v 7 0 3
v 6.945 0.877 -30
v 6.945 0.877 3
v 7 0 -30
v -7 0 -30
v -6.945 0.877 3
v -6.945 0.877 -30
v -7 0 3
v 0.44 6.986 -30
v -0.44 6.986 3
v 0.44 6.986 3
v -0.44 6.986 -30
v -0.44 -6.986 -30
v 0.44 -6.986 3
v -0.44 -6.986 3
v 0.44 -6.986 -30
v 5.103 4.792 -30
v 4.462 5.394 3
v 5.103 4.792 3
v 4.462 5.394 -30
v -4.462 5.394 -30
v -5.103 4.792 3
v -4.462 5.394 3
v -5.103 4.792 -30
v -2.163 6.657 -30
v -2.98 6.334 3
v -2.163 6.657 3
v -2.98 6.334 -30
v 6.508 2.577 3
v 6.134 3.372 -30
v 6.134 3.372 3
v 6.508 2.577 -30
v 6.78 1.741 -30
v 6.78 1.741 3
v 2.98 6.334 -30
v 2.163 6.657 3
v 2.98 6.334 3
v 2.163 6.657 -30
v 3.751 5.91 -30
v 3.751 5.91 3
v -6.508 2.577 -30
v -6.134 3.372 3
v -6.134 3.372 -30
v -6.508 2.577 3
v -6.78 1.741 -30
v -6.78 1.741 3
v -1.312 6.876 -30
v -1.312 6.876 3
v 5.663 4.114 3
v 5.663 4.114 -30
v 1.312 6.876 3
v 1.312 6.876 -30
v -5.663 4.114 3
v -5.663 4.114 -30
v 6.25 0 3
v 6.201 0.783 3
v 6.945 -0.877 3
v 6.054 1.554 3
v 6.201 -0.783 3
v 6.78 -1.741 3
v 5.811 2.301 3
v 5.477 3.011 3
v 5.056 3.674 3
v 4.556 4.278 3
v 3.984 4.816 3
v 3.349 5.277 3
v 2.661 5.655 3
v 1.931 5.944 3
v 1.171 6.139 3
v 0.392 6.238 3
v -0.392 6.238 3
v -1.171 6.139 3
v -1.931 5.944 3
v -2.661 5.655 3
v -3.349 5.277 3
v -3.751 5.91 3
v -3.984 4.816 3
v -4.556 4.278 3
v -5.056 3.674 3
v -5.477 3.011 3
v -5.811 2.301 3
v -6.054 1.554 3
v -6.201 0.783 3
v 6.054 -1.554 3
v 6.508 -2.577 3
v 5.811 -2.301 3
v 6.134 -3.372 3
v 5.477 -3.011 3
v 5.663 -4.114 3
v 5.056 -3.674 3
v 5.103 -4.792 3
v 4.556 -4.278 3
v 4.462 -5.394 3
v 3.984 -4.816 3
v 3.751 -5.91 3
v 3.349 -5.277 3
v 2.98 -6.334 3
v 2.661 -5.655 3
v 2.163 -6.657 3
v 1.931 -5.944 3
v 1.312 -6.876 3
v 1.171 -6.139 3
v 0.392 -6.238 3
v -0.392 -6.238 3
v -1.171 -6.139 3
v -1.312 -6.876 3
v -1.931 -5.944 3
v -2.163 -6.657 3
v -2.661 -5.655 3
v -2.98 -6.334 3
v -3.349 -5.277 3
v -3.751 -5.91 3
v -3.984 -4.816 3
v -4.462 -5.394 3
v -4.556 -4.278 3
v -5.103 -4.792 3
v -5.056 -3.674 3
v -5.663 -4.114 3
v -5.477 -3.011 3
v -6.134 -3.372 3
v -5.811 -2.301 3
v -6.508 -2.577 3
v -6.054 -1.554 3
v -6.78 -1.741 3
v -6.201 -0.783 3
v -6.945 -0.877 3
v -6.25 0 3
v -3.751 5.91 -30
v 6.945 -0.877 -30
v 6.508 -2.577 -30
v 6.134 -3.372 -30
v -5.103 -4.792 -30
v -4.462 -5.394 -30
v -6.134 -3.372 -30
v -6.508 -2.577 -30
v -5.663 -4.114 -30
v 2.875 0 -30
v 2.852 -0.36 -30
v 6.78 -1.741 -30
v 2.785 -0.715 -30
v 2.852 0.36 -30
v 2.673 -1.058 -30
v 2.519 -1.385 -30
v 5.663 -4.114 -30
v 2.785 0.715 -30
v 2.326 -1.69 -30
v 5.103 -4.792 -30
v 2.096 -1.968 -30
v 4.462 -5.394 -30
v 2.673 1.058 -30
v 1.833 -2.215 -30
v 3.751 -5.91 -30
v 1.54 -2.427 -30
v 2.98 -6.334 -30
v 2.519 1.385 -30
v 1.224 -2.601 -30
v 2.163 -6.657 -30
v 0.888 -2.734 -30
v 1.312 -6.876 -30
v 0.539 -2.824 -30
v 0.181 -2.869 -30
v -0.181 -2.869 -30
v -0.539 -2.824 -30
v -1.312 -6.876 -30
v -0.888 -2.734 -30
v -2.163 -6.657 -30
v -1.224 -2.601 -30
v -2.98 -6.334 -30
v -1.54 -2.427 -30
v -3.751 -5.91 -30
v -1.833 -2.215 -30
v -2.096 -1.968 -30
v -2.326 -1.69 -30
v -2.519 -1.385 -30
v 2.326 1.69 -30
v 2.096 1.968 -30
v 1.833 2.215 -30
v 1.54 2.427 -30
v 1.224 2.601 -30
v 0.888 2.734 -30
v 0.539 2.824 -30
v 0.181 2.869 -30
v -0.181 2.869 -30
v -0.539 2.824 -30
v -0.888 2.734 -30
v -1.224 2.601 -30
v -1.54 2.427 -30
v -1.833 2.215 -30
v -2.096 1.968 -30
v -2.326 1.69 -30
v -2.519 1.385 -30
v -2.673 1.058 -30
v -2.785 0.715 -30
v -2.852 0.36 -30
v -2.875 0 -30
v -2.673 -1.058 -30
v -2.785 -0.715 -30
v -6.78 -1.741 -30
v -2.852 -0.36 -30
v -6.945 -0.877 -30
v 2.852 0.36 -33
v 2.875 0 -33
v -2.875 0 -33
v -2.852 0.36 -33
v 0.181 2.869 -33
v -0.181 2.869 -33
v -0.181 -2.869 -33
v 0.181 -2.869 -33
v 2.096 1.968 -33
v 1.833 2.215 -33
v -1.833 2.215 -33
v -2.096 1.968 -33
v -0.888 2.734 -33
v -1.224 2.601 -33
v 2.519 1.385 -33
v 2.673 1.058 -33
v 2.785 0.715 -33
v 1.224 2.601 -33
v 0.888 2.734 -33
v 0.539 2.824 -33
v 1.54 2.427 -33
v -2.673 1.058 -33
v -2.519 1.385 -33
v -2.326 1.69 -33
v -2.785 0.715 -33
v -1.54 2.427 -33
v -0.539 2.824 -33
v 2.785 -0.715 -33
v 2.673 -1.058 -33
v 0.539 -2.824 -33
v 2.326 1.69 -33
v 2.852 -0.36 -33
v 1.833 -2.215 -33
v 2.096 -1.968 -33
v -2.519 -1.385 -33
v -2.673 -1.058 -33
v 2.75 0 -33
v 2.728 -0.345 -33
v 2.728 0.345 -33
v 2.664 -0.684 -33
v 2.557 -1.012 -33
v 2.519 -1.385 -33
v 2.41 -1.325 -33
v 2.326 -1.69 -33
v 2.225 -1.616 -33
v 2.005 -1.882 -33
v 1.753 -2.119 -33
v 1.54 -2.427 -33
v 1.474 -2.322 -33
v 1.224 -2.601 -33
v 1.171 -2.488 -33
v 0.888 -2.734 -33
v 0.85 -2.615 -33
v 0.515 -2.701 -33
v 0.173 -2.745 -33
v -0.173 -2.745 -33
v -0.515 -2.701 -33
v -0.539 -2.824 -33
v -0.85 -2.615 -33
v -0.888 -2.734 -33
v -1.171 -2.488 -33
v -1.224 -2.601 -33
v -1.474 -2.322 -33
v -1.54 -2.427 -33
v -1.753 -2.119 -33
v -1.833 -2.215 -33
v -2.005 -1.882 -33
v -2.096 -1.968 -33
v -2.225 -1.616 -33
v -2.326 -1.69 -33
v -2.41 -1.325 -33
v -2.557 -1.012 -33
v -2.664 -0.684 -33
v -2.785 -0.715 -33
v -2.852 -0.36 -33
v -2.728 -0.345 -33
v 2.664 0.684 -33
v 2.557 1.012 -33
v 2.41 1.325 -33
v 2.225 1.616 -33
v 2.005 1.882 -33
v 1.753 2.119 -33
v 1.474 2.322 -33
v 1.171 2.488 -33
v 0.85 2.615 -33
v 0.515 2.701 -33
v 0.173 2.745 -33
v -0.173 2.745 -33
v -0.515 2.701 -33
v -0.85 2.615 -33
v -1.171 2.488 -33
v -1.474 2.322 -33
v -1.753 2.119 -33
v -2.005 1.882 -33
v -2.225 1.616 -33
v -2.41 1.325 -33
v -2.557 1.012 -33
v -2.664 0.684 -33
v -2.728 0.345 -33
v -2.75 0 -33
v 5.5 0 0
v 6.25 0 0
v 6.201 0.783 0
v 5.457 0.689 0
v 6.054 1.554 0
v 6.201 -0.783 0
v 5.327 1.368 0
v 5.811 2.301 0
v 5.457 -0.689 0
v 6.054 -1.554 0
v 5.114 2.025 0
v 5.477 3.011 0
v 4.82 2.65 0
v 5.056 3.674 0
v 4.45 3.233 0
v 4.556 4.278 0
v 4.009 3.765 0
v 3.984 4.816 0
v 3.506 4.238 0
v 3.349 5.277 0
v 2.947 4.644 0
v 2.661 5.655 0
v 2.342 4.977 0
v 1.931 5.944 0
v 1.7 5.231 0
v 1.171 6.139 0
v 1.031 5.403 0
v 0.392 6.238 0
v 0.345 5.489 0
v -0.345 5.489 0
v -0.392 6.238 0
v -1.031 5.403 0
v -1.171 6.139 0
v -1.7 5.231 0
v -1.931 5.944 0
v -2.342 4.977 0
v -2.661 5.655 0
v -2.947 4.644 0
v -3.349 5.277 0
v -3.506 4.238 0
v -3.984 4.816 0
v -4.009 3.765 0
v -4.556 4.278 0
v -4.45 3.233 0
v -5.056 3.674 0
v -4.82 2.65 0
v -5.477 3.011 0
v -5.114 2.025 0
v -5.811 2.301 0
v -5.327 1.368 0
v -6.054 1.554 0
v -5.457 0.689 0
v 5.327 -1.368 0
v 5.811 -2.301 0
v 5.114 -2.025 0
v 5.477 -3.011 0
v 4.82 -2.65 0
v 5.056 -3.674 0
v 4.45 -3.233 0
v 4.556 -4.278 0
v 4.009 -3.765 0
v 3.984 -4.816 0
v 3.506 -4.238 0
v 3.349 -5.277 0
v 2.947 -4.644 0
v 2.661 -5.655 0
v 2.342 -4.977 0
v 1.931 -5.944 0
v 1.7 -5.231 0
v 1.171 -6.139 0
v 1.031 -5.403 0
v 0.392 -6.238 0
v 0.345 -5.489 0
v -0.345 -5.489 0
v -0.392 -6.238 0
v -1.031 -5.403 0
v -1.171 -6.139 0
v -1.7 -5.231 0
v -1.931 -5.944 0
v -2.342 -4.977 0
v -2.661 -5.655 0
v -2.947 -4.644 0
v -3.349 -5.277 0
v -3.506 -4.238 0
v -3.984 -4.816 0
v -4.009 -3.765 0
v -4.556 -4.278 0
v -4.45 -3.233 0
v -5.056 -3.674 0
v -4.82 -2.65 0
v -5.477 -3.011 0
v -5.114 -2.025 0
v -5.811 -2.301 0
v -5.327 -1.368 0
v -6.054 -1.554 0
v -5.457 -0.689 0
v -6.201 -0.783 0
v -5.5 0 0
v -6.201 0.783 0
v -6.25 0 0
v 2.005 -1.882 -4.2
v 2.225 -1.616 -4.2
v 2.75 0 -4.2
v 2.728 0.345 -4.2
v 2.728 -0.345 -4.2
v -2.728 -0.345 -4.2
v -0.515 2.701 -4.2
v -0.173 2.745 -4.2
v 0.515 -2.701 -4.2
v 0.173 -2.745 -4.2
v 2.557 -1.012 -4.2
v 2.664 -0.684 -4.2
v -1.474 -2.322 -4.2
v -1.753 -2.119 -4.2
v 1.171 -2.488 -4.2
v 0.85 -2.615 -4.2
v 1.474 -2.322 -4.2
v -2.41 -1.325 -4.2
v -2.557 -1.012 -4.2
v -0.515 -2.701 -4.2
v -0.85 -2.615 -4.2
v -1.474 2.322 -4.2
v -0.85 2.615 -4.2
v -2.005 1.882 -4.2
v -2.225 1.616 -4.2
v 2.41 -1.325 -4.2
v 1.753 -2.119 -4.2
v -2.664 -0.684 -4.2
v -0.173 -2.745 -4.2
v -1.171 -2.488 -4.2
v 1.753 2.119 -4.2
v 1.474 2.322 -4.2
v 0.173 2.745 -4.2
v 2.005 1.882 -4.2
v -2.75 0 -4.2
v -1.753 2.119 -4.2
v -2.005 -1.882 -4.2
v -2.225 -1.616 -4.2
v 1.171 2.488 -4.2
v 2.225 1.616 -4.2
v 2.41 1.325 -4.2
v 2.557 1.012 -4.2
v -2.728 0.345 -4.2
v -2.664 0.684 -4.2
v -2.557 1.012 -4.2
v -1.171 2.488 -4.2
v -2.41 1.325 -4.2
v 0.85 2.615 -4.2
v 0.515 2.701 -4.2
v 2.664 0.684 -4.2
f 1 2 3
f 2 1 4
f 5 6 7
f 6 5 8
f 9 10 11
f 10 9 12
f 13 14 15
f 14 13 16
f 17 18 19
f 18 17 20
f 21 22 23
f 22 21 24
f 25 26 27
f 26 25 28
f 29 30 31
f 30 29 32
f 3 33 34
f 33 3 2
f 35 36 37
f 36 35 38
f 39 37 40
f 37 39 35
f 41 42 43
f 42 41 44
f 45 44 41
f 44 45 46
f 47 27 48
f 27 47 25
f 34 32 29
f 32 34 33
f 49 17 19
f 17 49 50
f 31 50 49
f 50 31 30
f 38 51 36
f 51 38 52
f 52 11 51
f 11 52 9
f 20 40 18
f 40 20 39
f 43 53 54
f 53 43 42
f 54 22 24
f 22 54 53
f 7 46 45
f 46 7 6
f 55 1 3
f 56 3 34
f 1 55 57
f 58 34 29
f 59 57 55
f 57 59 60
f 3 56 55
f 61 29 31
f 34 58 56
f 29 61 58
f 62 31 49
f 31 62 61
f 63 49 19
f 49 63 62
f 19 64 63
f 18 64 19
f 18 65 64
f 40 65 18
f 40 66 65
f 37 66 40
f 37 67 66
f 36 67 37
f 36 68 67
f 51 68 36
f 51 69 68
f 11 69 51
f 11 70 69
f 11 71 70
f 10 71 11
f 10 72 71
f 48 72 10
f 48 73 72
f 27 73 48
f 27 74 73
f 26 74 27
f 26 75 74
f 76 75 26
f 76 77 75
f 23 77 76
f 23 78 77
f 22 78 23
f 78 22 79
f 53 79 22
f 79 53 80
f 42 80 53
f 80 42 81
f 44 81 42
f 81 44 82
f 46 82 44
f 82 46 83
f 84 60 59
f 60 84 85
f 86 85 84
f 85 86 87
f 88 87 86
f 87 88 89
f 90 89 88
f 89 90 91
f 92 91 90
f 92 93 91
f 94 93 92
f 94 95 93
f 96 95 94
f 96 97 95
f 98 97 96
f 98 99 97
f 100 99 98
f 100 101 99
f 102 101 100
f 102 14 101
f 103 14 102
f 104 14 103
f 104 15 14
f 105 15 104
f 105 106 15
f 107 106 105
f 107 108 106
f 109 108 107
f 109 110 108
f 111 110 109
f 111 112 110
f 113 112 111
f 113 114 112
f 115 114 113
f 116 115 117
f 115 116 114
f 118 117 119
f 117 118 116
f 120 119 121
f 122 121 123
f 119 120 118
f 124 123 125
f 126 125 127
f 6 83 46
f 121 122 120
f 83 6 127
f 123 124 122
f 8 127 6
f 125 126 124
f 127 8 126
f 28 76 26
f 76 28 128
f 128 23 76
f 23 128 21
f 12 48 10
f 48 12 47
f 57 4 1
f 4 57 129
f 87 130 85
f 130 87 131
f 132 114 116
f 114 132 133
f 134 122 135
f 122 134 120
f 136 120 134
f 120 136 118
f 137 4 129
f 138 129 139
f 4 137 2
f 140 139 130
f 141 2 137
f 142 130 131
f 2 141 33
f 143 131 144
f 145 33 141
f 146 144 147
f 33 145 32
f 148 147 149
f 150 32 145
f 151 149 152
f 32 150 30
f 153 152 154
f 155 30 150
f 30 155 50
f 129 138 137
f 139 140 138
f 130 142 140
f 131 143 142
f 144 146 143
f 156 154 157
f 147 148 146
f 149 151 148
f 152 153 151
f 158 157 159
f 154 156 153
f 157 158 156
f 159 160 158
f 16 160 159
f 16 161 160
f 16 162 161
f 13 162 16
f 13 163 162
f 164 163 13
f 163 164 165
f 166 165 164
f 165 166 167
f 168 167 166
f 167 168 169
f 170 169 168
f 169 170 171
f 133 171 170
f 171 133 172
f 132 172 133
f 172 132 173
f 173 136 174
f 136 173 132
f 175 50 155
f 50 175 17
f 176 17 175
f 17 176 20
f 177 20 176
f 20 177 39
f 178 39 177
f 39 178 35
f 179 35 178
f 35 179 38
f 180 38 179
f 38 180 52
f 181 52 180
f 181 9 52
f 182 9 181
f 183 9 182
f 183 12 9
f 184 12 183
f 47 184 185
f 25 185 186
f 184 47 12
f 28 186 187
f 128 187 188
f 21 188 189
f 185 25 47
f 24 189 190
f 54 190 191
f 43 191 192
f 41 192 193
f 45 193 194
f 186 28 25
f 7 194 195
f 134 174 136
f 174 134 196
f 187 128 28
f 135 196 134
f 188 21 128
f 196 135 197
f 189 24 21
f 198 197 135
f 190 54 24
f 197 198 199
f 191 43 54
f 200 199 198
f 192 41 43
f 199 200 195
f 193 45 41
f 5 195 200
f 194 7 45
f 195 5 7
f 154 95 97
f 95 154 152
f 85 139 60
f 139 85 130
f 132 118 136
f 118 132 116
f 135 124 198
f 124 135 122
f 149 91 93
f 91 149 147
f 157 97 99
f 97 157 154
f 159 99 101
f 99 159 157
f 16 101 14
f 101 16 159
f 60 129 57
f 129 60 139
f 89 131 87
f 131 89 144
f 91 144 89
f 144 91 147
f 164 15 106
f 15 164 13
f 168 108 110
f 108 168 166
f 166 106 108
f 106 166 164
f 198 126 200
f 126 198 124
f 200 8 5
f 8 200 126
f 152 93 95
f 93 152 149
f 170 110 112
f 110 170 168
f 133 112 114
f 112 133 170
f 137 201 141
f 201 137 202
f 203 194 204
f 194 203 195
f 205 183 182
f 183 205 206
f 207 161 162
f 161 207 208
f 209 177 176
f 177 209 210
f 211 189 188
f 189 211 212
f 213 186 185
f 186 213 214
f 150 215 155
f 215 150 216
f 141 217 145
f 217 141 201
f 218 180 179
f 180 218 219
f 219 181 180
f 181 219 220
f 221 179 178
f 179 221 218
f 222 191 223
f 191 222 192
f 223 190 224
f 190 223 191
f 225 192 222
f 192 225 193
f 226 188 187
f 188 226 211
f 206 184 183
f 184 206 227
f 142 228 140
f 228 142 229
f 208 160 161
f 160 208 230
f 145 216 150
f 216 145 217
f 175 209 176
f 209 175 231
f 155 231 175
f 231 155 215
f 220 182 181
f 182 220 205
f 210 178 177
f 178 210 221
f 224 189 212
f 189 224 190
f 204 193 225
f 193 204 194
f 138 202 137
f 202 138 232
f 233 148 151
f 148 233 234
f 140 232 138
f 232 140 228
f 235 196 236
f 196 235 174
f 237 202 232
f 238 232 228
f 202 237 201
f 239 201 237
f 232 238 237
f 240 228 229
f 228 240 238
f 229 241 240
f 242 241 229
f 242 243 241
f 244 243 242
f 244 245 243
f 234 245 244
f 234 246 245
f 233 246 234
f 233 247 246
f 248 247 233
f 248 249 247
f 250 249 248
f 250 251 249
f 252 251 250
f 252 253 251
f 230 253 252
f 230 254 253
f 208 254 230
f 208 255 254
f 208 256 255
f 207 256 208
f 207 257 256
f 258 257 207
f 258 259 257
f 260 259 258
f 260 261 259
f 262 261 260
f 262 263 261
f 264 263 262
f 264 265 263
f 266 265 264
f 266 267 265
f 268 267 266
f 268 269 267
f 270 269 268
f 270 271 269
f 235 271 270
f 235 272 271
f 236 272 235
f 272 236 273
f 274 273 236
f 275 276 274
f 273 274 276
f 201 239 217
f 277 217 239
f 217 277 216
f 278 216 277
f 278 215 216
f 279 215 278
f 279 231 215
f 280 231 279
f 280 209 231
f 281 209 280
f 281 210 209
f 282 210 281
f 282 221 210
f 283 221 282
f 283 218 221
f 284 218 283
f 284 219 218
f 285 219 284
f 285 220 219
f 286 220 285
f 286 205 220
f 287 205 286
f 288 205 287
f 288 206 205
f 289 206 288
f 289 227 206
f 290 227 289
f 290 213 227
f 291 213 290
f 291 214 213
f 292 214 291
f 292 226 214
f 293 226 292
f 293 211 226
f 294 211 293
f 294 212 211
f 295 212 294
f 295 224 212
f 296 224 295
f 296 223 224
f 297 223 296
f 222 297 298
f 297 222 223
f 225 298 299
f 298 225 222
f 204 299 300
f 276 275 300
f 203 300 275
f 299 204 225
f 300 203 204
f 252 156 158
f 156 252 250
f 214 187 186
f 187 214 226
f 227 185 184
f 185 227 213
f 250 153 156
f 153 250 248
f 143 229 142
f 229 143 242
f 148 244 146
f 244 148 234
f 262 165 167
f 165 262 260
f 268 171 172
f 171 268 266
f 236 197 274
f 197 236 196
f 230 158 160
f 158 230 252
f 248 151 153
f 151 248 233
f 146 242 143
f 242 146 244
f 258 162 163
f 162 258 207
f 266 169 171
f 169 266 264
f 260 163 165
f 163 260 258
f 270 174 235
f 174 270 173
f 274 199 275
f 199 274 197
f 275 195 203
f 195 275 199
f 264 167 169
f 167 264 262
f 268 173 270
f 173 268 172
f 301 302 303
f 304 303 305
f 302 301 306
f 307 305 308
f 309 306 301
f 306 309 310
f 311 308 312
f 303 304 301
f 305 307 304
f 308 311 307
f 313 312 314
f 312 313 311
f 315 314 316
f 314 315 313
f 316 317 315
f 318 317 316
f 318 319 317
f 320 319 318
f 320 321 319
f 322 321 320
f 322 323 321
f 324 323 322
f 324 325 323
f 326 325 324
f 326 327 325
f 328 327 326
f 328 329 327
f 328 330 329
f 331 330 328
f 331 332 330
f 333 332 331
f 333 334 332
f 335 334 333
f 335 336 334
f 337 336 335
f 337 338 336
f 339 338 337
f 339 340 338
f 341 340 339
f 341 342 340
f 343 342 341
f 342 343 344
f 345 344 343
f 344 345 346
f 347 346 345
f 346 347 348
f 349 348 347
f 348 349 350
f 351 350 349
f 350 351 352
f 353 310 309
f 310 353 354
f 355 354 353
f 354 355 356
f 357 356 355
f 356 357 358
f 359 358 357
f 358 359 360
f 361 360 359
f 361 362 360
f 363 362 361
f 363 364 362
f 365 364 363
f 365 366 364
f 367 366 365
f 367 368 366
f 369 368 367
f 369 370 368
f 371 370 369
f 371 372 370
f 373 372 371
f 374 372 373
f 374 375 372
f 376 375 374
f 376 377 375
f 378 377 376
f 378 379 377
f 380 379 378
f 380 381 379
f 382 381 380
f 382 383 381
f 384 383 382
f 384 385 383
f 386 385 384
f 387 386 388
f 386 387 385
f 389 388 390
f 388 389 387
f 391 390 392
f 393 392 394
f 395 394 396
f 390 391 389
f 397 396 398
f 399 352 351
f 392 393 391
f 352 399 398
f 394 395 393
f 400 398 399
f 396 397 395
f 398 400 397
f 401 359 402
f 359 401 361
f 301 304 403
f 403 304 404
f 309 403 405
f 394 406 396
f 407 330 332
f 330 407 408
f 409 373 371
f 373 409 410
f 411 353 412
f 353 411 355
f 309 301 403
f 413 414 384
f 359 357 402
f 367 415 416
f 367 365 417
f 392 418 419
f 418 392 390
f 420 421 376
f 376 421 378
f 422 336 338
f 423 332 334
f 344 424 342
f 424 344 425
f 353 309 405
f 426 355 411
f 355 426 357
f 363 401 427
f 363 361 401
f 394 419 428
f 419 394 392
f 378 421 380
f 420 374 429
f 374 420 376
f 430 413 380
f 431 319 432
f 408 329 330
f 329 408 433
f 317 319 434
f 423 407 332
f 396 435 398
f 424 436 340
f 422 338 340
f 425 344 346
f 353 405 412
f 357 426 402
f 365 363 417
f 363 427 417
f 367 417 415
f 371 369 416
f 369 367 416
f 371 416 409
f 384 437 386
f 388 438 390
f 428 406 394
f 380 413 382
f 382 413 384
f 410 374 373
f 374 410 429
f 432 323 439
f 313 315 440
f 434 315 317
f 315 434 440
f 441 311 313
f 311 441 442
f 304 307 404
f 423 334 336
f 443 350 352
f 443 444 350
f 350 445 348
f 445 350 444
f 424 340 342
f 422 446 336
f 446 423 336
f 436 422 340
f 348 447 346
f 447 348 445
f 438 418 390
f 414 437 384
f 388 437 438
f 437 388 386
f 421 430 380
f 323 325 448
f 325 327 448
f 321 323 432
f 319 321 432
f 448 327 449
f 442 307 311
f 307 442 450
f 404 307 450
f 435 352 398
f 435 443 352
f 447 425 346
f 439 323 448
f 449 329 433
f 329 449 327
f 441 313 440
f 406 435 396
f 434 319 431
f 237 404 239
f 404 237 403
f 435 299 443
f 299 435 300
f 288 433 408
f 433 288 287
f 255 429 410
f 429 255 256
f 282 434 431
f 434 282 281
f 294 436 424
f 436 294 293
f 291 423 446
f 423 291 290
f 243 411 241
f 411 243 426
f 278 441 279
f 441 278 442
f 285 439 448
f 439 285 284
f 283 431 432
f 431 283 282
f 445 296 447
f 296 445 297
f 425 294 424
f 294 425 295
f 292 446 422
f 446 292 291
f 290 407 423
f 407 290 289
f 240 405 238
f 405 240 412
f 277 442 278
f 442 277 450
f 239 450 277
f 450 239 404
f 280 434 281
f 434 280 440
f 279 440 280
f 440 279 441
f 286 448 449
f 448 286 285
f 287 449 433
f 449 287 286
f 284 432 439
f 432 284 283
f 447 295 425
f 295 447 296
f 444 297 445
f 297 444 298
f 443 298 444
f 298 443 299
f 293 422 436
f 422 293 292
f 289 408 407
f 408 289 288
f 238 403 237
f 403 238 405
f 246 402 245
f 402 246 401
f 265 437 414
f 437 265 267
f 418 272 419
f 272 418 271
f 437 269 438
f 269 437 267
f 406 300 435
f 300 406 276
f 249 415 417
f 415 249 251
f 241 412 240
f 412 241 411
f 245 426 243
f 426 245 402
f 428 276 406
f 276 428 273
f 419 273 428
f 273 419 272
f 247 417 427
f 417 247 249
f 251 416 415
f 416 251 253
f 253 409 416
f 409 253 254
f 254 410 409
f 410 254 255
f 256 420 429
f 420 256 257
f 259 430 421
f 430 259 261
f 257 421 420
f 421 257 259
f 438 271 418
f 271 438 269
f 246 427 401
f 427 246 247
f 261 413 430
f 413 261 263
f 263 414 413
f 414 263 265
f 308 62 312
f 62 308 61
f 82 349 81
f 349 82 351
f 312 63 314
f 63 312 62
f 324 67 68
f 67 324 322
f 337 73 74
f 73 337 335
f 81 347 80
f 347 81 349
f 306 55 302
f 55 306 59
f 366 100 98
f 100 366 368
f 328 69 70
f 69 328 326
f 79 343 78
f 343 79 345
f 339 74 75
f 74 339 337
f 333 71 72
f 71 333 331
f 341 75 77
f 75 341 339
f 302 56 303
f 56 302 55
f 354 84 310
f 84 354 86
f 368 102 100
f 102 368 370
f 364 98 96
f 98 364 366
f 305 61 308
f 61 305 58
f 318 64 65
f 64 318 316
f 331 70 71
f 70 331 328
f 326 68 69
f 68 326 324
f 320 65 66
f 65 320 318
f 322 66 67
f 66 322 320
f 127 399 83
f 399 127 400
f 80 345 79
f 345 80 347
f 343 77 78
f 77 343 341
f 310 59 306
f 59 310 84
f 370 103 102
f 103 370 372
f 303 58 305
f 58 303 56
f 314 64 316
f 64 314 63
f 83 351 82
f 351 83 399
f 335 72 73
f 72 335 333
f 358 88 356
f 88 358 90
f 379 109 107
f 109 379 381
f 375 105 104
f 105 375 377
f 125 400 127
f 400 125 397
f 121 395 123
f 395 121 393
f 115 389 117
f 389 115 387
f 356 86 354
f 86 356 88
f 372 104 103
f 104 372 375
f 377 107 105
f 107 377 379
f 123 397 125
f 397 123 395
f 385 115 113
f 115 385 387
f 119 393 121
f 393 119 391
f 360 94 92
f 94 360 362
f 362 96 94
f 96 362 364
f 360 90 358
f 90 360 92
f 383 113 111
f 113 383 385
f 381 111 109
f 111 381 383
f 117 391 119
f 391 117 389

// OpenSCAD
$fn = 50;

difference() {
	union() {
		translate(v = [0, 0, -30.0]) {
			cylinder(h = 33, r = 7.0);
		}
		#translate(v = [0, 0, -33.0]) {
			cylinder(h = 33, r = 2.875);
		}
	}
	union() {
		translate(v = [0, 0, 0]) {
			rotate(a = [0, 0, 0]) {
				difference() {
					union() {
						translate(v = [0, 0, -33.0]) {
							cylinder(h = 33, r = 2.25);
						}
						translate(v = [0, 0, -4.2]) {
							cylinder(h = 4.2, r1 = 2.75, r2 = 5.5);
						}
						translate(v = [0, 0, -33.0]) {
							cylinder(h = 33, r = 2.75);
						}
						translate(v = [0, 0, -33.0]) {
							cylinder(h = 33, r = 2.25);
						}
					}
					union();
				}
			}
		}
		#cylinder(h = 3, r = 6.25);
	}
}
